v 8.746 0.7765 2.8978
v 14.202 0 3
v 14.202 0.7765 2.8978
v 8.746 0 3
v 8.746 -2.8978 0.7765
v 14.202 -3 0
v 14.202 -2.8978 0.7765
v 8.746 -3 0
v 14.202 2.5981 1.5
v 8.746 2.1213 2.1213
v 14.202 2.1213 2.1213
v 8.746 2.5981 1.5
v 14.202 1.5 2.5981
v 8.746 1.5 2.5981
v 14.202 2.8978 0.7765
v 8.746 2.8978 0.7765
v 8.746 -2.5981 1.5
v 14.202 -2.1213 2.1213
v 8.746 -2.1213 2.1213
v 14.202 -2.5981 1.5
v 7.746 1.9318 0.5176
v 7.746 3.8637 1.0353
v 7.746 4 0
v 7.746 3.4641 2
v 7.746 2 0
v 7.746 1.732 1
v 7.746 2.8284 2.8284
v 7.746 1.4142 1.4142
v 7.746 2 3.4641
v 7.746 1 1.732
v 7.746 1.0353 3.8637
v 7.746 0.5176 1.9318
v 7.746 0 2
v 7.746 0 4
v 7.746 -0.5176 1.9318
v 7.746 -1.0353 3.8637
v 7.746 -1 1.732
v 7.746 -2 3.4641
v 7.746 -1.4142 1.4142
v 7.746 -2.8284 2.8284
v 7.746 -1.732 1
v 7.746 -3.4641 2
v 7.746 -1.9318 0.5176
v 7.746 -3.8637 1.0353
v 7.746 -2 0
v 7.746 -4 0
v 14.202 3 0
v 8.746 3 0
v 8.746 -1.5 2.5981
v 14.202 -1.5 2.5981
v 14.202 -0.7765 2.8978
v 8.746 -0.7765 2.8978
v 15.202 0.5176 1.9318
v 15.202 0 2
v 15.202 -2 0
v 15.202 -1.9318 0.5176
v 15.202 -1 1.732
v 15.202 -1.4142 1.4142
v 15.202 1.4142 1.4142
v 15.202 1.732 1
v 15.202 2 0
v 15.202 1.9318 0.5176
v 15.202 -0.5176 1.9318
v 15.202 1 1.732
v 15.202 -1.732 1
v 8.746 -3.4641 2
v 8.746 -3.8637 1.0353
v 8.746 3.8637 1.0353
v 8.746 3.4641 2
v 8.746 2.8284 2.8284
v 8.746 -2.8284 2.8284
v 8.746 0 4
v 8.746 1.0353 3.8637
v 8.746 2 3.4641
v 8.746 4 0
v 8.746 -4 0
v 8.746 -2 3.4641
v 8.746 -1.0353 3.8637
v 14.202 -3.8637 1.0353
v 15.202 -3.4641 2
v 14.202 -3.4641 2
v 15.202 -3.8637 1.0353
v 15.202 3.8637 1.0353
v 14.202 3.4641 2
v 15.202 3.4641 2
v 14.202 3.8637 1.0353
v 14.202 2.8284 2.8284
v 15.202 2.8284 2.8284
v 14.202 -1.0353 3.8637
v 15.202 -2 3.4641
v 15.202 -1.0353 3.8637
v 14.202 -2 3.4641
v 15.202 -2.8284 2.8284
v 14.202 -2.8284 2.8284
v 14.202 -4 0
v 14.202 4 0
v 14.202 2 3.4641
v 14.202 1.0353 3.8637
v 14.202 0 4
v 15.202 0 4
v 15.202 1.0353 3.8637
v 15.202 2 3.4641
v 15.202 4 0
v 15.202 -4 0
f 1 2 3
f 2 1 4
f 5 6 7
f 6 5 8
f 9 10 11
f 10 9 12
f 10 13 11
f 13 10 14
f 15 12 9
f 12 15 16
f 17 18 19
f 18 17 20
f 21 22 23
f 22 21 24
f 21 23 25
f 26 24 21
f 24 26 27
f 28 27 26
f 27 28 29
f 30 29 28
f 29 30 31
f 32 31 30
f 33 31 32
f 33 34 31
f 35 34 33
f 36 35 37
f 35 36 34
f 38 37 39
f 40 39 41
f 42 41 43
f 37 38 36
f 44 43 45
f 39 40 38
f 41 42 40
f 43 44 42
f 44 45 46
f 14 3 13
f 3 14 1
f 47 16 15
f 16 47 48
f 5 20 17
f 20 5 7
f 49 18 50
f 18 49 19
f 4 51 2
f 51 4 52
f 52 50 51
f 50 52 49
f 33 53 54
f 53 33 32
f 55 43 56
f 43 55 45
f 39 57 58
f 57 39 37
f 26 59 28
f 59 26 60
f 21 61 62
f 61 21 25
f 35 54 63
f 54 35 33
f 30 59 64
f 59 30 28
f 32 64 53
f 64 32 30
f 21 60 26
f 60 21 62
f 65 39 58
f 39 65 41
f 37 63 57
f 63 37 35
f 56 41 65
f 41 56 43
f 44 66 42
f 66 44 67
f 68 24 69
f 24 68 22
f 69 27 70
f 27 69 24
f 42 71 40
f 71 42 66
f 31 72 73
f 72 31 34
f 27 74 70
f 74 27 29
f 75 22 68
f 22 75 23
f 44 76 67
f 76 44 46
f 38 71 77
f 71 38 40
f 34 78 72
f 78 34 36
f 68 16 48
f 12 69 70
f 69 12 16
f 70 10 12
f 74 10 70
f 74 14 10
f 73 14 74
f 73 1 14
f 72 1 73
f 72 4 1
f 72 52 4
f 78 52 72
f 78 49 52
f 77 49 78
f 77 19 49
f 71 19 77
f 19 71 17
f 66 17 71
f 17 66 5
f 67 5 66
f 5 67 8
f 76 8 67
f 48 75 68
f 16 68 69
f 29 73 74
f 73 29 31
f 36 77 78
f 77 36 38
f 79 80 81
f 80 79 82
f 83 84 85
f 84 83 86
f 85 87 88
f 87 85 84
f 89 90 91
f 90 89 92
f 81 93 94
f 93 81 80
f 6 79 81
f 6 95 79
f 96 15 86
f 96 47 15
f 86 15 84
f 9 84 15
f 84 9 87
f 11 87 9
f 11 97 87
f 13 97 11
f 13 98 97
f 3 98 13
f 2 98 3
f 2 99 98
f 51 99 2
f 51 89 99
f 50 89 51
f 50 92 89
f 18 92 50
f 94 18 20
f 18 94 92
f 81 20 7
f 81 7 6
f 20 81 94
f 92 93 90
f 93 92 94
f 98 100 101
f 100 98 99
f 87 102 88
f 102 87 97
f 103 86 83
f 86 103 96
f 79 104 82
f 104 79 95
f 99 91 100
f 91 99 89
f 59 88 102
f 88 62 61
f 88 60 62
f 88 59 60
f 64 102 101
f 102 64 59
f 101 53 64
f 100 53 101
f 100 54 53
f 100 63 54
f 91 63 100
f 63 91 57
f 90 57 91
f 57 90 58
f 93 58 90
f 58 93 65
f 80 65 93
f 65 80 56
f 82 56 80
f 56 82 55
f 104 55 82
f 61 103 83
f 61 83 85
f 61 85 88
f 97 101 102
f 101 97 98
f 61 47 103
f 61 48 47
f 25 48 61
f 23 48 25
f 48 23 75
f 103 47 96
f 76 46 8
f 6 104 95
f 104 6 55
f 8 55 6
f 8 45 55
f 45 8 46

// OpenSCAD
// file: ../build_environments.scad
// build_environments.scad: modules to build level sections
//

module pool(diameter=10.0, wall_height=2.0, step_width=3.0, connections=[])
{
    difference() {
        union() {
        difference() {
            cylinder(h=0.5,r1=diameter+step_width,r2=diameter+step_width,$fn=48);
            translate([0,0,-0.1])
                cylinder(h=0.7,r1=diameter,r2=diameter,$fn=48);
        }
        difference() {
            cylinder(h=wall_height,r1=diameter+step_width+1.0,r2=diameter+step_width+1.0,$fn=48);
            translate([0,0,-0.1])
                cylinder(h=wall_height+0.2,r1=diameter+step_width,r2=diameter+step_width,$fn=48);
        }
        }
    
        for (c = connections)
        {
            rotate([0,90,0]) {
                angle = atan2(c[1],c[0]);
                rotate([-angle,0,0]) {
                    cylinder(h=diameter+5.0,r1=c[2],r2=c[2],$fn=48);
                }
            }
        }
    }
}

module straight(length=10.0, width=2.0, dy1=0.0, dy2=0.0, dz=0.0)
{
    dims = [0, 0, 0, 0, 0, (dz/length)];
    matrix = [
        [ 1, dims[0], dims[1], 0 ],
        [ dims[2], 1, dims[4], 0 ],
        [ dims[5], dims[3], 1, 0 ],
        [ 0, 0, 0, 1 ]
    ];
    multmatrix(matrix)
    difference() {
        translate([dy1,0,0])
        union() {
            rotate([0,90,0]) {
                difference() {
                    cylinder(h=(length-dy1-dy2),r1=width+1.0,r2=width+1.0,$fn=24);
                    translate([0,0,-0.1])
                        cylinder(h=(length-dy1-dy2+0.2),r1=width,r2=width,$fn=24);
                }
                difference() {
                    cylinder(h=1.0,r1=width+2.0,r2=width+2.0,$fn=24);
                    translate([0,0,-0.1])
                        cylinder(h=1.2,r1=width,r2=width,$fn=24);
                }
                translate([0,0,(length-dy1-dy2)-1.0]) {
                    difference() {
                        cylinder(h=1.0,r1=width+2.0,r2=width+2.0,$fn=24);
                        translate([0,0,-0.1])
                            cylinder(h=1.2,r1=width,r2=width,$fn=24);
                    }
                }
            }
        }
        translate([0,0,-(2*width+4.0)/2])
            cube([3*length,3*length,2*width+4.0],center=true);
    }
}

module curve(p0=[0,0], center=[0,0], dir=1, angle=0.0, width=2.0)
{
    radius = sqrt((p0[0]-center[0])*(p0[0]-center[0]) + (p0[1]-center[1])*(p0[1]-center[1]));
    if (dir == 0) {
        difference() {
            rotate([0,0,-90])
            difference() {
                rotate_extrude(angle = angle, convexity = 10, $fn=32)
                    translate([radius, 0, 0])
                        circle(r = width+1.0,$fn=24);
                rotate([0,0,-1.0])
                    rotate_extrude(angle = angle+2.0, convexity = 10, $fn=32)
                        translate([radius, 0, 0])
                            circle(r = width,$fn=24);
            }
            translate([0,0,-(2*width+4.0)/2])
                cube([5*radius,5*radius,2*width+4.0],center=true);
        }
    }
    else {
        difference() {
            rotate([0,0,90])
            difference() {
                rotate_extrude(angle = -angle, convexity = 10, $fn=32)
                    translate([radius, 0, 0])
                        circle(r = width+1.0,$fn=24);
                rotate([0,0,1.0])
                    rotate_extrude(angle = -angle-2.0, convexity = 10, $fn=32)
                        translate([radius, 0, 0])
                            circle(r = width,$fn=24);
            }
            translate([0,0,-(2*width+4.0)/2])
                cube([5*radius,5*radius,2*width+4.0],center=true);
        }
    }

}

// test pool
//pool(diameter=12.0000, wall_height=3.0000, step_width=3.0000, connections=[[0.0000,-26.0000,2.0000], [23.6074,0.0000,2.0000]]);

// test straight, slope
//straight(length=26.0000, width=2.0000, dy1=11.8322, dy2=6.7082, dz=0.0000);
//straight(length=29.1549, width=12.0000, dy1=0.0000, dy2=0.0000, dz=-15.0000);

// test curve
//curve(p0=[23.6074, 0.0000], center=[23.6074, 5.0000], dir=0, angle=60.1011, width=2.0000);
//curve(p0=[33.6426, 12.4219], center=[37.9771, 9.9295], dir=1, angle=120.4627, width=2.0000);
// main file
use <../build_environments.scad>;
straight(length=25.0000, width=2.0000, dy1=7.7460, dy2=9.7980, dz=0.0000);
